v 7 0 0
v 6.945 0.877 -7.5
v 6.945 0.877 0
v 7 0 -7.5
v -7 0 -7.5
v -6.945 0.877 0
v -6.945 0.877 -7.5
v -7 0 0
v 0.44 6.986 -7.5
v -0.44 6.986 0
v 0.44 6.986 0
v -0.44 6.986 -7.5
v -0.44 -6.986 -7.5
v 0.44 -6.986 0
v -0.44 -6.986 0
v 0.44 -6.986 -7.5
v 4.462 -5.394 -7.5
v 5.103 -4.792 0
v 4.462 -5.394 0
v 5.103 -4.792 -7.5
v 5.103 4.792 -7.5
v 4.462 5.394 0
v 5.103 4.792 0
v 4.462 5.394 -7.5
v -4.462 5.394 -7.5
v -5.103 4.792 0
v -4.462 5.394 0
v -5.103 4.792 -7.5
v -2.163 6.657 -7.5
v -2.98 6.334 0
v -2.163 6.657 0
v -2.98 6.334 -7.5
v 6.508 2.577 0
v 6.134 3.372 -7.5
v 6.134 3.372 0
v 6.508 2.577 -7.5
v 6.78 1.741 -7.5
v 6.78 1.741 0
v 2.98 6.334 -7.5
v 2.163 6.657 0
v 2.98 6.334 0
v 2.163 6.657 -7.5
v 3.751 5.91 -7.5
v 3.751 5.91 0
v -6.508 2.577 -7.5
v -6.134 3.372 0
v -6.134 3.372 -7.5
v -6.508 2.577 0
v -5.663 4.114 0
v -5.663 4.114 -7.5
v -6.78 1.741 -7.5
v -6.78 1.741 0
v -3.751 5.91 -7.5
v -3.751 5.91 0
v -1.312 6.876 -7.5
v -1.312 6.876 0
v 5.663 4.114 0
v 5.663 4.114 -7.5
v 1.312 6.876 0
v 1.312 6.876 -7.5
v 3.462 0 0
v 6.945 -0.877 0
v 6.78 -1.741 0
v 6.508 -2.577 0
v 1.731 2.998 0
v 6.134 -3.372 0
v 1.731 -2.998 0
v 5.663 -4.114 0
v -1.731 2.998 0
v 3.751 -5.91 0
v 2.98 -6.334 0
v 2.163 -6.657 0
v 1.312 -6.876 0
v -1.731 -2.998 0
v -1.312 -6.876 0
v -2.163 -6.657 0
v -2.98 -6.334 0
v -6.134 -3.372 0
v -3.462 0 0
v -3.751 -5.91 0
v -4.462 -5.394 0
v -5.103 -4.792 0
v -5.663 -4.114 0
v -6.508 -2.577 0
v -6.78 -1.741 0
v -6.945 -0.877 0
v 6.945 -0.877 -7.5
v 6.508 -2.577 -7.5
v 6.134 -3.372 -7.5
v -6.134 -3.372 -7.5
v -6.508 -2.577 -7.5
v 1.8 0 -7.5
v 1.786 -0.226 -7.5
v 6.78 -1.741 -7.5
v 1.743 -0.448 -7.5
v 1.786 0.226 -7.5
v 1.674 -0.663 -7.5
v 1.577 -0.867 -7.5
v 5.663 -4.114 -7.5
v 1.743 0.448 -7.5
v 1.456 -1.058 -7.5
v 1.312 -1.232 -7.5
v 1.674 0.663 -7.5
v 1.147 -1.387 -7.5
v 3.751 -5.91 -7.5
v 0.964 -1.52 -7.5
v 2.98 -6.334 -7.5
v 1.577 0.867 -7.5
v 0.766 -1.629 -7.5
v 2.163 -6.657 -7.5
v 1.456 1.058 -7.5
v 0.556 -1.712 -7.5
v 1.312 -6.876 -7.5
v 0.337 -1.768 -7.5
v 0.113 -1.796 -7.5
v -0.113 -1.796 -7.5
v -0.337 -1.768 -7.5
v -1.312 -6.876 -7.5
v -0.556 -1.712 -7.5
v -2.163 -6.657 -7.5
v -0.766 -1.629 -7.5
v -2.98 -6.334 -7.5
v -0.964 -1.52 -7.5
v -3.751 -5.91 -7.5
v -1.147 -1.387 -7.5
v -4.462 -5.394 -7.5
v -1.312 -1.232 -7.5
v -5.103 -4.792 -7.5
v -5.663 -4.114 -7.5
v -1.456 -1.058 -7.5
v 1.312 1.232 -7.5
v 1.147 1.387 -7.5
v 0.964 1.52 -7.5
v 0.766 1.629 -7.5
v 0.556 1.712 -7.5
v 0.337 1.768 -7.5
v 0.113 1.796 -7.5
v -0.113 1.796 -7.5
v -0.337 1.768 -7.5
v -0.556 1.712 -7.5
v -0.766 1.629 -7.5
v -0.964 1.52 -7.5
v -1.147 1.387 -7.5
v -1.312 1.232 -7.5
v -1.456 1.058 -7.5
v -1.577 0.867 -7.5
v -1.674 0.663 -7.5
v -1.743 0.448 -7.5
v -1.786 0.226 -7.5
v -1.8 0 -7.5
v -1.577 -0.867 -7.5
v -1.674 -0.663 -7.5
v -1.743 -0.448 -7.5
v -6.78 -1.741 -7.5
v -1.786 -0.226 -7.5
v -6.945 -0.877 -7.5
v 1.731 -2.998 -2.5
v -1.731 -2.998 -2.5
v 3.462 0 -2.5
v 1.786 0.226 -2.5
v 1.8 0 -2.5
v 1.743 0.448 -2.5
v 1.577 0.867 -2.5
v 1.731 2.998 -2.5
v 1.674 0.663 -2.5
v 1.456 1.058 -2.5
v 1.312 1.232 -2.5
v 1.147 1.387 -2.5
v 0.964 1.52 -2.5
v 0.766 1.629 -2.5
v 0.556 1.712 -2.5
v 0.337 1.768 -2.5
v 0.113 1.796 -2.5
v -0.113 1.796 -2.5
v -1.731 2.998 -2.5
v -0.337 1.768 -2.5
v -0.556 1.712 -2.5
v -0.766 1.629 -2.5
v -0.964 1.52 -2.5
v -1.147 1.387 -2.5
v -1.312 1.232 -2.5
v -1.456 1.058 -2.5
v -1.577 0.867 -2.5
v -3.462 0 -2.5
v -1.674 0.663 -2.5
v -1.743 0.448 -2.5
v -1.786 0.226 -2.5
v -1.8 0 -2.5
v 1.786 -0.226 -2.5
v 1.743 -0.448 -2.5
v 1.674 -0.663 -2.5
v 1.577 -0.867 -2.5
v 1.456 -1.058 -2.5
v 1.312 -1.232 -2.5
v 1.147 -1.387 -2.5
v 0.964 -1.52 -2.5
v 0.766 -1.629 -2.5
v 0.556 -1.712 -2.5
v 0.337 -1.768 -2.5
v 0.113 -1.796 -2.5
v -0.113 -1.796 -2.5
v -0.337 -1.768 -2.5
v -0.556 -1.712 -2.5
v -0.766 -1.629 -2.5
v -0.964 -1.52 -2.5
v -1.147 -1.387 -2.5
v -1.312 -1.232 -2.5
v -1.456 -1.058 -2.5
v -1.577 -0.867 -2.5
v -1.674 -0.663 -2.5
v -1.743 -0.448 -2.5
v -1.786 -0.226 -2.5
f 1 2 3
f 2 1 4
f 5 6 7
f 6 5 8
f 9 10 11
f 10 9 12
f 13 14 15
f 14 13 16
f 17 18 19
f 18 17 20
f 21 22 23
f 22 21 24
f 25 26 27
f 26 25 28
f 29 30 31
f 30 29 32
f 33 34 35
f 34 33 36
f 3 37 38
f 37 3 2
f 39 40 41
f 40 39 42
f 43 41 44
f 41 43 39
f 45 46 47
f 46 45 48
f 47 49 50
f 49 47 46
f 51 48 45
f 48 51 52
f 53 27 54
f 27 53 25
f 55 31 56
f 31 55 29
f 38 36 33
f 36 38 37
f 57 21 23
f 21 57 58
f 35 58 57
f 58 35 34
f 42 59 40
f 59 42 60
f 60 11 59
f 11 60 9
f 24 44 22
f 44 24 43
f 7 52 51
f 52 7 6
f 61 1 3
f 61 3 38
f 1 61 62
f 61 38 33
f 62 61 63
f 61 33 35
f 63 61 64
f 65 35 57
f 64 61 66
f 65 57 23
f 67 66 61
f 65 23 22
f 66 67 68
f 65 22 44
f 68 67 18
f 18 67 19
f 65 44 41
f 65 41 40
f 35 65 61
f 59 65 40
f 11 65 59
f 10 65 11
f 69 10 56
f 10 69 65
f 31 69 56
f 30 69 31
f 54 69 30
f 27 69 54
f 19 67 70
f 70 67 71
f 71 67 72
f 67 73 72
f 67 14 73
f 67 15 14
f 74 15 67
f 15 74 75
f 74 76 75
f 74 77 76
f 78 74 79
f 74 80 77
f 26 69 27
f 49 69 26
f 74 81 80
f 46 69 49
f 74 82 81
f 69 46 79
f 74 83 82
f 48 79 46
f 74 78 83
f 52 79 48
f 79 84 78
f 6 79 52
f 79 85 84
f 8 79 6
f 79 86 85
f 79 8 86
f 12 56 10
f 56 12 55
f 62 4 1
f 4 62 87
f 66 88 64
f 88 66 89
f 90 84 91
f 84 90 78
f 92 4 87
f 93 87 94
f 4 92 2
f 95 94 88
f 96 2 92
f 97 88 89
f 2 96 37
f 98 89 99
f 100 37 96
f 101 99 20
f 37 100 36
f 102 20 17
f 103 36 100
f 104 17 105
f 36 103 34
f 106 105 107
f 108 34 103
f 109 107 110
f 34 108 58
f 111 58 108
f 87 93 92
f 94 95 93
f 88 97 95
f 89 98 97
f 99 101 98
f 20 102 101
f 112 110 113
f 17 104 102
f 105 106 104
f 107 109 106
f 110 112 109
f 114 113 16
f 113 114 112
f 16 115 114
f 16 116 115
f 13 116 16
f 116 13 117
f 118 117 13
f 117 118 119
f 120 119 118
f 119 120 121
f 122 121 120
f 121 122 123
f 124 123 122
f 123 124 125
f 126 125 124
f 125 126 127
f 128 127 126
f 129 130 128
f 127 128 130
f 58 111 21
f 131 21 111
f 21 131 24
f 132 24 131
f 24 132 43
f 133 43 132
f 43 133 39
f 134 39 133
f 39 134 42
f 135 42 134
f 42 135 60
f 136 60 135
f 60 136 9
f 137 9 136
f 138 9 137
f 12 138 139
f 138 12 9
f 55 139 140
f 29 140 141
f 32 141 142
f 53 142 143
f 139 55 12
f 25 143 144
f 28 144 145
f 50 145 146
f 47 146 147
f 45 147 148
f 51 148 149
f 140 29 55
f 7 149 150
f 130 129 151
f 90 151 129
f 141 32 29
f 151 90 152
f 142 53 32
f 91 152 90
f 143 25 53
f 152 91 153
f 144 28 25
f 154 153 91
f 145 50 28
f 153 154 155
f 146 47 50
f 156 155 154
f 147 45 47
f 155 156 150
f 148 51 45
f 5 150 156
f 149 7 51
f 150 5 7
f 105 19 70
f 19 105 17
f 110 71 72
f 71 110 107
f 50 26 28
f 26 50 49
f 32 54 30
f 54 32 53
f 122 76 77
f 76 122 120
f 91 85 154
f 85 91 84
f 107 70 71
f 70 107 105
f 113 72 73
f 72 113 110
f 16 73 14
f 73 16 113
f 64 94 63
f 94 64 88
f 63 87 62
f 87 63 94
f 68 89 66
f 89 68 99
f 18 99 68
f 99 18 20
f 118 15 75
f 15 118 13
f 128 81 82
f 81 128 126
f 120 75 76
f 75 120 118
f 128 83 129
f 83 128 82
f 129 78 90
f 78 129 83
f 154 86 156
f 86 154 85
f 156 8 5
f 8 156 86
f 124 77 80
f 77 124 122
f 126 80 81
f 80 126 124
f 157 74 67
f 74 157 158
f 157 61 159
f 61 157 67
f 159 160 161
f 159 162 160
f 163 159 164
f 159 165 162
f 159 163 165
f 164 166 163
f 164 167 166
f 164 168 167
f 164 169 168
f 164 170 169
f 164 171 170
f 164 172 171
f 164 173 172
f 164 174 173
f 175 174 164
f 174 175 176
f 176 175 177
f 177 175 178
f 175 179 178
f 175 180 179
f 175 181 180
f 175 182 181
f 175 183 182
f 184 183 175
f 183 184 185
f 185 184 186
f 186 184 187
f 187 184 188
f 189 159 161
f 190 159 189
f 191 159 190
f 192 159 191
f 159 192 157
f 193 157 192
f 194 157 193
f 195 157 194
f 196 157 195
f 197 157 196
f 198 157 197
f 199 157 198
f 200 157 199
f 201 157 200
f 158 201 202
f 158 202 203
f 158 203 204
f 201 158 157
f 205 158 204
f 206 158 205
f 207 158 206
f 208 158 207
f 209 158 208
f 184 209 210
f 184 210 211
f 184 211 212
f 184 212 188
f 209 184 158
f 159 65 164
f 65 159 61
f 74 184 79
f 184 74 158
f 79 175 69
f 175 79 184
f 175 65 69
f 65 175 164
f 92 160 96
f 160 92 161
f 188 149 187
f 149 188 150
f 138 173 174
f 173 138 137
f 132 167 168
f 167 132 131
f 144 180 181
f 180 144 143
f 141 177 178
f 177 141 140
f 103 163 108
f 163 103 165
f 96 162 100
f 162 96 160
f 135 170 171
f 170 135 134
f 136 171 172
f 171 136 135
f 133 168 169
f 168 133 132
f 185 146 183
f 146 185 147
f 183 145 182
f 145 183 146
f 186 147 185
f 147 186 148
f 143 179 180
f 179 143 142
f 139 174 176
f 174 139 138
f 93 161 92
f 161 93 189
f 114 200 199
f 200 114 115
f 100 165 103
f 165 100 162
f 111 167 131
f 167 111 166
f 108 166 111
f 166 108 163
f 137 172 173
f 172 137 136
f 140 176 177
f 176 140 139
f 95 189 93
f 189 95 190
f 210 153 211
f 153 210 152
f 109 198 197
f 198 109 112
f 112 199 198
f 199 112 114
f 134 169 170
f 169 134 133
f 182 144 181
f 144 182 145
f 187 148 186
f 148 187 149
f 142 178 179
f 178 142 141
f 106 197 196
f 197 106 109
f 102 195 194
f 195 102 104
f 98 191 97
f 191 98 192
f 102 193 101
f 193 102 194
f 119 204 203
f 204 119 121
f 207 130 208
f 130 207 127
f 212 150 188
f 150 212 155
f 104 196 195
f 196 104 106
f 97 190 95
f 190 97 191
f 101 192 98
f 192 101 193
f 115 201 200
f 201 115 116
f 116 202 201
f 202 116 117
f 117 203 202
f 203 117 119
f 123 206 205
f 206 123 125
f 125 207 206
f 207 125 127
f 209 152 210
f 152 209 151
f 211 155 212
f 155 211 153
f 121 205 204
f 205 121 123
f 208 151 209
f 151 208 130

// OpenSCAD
$fn = 50;


difference() {
	union() {
		translate(v = [0, 0, -7.5000000000]) {
			cylinder(h = 7.5000000000, r = 7.0000000000);
		}
		translate(v = [0, 0, -6.0000000000]) {
			cylinder(h = 6, r = 2.8750000000);
		}
	}
	union() {
		translate(v = [0, 0, 0]) {
			rotate(a = [0, 0, 0]) {
				difference() {
					union() {
						translate(v = [0, 0, -2.5000000000]) {
							linear_extrude(height = 2.5000000000) {
								polygon(points = [[3.4620000000, 0.0000000000], [1.7310000000, 2.9981799479], [-1.7310000000, 2.9981799479], [-3.4620000000, 0.0000000000], [-1.7310000000, -2.9981799479], [1.7310000000, -2.9981799479]]);
							}
						}
					}
					union();
				}
			}
		}
		#translate(v = [0, 0, -100.0000000000]) {
			cylinder(h = 200, r = 1.8000000000);
		}
	}
}
